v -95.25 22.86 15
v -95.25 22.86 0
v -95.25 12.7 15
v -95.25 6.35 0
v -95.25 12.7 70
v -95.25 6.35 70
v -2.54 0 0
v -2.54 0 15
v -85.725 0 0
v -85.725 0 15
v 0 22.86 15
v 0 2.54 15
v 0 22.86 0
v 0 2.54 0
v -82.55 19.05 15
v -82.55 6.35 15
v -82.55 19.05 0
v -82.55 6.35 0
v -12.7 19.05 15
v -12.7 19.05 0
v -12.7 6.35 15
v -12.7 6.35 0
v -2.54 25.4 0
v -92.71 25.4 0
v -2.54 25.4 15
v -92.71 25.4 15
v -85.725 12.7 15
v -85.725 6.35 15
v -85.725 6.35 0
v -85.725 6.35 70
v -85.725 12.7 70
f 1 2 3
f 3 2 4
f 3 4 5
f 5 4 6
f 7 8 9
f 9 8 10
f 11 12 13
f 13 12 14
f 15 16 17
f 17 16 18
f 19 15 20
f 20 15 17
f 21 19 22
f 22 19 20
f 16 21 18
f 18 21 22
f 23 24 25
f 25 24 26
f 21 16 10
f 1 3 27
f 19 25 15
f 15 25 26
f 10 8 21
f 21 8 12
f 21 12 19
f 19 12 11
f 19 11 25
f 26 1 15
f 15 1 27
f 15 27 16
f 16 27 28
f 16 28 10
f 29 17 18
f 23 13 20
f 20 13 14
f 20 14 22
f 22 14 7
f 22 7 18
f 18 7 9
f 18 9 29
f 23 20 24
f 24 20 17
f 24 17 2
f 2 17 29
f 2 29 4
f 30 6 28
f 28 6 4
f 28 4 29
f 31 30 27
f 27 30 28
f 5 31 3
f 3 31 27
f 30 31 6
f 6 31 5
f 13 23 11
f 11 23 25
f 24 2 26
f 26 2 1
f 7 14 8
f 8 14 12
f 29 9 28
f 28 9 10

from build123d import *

# Parameters (mm, degrees)
SKETCH1_W           = 95.25
SKETCH1_H           = 25.4
SKETCH1_W_2         = 69.85
SKETCH1_H_2         = 12.7
BOSS_EXTRUDE1_DEPTH = 15
SKETCH2_W           = 9.525
SKETCH2_H           = 6.35
BOSS_EXTRUDE2_DEPTH = 55
CHAMFER1_SIZE       = 2.54
SKETCH4_W           = 9.525
SKETCH4_H           = 6.35
CUT_EXTRUDE2_DEPTH  = 113.883667995


with BuildPart() as part:
    # Sketch1 → Boss-Extrude1 (new body)
    with BuildSketch(Plane.XY):
        with Locations((-47.625, 12.7)):
            Rectangle(SKETCH1_W, SKETCH1_H)
        with Locations((-47.625, 12.7)):
            Rectangle(SKETCH1_W_2, SKETCH1_H_2, mode=Mode.SUBTRACT)
    extrude(amount=BOSS_EXTRUDE1_DEPTH)

    # Sketch2 → Boss-Extrude2 (add)
    with BuildSketch(Plane.XY.offset(15)):
        with Locations((-90.4875, 9.525)):
            Rectangle(SKETCH2_W, SKETCH2_H)
    extrude(amount=BOSS_EXTRUDE2_DEPTH)

    # Chamfer1
    chamfer1_edges = [part.edges().sort_by_distance(p)[0] for p in [
        (-95.25, 25.4, 7.5),
        (0, 25.4, 7.5),
        (0, 0, 7.5),
        (-95.25, 0, 7.5),
    ]]
    chamfer(chamfer1_edges, length=CHAMFER1_SIZE)

    # Sketch4 → Cut-Extrude2 (cut, through all)
    with BuildSketch(Plane.XY.offset(15)):
        with Locations((-90.4875, 3.175)):
            Rectangle(SKETCH4_W, SKETCH4_H)
    extrude(amount=-CUT_EXTRUDE2_DEPTH, mode=Mode.SUBTRACT)


solid = part.part
